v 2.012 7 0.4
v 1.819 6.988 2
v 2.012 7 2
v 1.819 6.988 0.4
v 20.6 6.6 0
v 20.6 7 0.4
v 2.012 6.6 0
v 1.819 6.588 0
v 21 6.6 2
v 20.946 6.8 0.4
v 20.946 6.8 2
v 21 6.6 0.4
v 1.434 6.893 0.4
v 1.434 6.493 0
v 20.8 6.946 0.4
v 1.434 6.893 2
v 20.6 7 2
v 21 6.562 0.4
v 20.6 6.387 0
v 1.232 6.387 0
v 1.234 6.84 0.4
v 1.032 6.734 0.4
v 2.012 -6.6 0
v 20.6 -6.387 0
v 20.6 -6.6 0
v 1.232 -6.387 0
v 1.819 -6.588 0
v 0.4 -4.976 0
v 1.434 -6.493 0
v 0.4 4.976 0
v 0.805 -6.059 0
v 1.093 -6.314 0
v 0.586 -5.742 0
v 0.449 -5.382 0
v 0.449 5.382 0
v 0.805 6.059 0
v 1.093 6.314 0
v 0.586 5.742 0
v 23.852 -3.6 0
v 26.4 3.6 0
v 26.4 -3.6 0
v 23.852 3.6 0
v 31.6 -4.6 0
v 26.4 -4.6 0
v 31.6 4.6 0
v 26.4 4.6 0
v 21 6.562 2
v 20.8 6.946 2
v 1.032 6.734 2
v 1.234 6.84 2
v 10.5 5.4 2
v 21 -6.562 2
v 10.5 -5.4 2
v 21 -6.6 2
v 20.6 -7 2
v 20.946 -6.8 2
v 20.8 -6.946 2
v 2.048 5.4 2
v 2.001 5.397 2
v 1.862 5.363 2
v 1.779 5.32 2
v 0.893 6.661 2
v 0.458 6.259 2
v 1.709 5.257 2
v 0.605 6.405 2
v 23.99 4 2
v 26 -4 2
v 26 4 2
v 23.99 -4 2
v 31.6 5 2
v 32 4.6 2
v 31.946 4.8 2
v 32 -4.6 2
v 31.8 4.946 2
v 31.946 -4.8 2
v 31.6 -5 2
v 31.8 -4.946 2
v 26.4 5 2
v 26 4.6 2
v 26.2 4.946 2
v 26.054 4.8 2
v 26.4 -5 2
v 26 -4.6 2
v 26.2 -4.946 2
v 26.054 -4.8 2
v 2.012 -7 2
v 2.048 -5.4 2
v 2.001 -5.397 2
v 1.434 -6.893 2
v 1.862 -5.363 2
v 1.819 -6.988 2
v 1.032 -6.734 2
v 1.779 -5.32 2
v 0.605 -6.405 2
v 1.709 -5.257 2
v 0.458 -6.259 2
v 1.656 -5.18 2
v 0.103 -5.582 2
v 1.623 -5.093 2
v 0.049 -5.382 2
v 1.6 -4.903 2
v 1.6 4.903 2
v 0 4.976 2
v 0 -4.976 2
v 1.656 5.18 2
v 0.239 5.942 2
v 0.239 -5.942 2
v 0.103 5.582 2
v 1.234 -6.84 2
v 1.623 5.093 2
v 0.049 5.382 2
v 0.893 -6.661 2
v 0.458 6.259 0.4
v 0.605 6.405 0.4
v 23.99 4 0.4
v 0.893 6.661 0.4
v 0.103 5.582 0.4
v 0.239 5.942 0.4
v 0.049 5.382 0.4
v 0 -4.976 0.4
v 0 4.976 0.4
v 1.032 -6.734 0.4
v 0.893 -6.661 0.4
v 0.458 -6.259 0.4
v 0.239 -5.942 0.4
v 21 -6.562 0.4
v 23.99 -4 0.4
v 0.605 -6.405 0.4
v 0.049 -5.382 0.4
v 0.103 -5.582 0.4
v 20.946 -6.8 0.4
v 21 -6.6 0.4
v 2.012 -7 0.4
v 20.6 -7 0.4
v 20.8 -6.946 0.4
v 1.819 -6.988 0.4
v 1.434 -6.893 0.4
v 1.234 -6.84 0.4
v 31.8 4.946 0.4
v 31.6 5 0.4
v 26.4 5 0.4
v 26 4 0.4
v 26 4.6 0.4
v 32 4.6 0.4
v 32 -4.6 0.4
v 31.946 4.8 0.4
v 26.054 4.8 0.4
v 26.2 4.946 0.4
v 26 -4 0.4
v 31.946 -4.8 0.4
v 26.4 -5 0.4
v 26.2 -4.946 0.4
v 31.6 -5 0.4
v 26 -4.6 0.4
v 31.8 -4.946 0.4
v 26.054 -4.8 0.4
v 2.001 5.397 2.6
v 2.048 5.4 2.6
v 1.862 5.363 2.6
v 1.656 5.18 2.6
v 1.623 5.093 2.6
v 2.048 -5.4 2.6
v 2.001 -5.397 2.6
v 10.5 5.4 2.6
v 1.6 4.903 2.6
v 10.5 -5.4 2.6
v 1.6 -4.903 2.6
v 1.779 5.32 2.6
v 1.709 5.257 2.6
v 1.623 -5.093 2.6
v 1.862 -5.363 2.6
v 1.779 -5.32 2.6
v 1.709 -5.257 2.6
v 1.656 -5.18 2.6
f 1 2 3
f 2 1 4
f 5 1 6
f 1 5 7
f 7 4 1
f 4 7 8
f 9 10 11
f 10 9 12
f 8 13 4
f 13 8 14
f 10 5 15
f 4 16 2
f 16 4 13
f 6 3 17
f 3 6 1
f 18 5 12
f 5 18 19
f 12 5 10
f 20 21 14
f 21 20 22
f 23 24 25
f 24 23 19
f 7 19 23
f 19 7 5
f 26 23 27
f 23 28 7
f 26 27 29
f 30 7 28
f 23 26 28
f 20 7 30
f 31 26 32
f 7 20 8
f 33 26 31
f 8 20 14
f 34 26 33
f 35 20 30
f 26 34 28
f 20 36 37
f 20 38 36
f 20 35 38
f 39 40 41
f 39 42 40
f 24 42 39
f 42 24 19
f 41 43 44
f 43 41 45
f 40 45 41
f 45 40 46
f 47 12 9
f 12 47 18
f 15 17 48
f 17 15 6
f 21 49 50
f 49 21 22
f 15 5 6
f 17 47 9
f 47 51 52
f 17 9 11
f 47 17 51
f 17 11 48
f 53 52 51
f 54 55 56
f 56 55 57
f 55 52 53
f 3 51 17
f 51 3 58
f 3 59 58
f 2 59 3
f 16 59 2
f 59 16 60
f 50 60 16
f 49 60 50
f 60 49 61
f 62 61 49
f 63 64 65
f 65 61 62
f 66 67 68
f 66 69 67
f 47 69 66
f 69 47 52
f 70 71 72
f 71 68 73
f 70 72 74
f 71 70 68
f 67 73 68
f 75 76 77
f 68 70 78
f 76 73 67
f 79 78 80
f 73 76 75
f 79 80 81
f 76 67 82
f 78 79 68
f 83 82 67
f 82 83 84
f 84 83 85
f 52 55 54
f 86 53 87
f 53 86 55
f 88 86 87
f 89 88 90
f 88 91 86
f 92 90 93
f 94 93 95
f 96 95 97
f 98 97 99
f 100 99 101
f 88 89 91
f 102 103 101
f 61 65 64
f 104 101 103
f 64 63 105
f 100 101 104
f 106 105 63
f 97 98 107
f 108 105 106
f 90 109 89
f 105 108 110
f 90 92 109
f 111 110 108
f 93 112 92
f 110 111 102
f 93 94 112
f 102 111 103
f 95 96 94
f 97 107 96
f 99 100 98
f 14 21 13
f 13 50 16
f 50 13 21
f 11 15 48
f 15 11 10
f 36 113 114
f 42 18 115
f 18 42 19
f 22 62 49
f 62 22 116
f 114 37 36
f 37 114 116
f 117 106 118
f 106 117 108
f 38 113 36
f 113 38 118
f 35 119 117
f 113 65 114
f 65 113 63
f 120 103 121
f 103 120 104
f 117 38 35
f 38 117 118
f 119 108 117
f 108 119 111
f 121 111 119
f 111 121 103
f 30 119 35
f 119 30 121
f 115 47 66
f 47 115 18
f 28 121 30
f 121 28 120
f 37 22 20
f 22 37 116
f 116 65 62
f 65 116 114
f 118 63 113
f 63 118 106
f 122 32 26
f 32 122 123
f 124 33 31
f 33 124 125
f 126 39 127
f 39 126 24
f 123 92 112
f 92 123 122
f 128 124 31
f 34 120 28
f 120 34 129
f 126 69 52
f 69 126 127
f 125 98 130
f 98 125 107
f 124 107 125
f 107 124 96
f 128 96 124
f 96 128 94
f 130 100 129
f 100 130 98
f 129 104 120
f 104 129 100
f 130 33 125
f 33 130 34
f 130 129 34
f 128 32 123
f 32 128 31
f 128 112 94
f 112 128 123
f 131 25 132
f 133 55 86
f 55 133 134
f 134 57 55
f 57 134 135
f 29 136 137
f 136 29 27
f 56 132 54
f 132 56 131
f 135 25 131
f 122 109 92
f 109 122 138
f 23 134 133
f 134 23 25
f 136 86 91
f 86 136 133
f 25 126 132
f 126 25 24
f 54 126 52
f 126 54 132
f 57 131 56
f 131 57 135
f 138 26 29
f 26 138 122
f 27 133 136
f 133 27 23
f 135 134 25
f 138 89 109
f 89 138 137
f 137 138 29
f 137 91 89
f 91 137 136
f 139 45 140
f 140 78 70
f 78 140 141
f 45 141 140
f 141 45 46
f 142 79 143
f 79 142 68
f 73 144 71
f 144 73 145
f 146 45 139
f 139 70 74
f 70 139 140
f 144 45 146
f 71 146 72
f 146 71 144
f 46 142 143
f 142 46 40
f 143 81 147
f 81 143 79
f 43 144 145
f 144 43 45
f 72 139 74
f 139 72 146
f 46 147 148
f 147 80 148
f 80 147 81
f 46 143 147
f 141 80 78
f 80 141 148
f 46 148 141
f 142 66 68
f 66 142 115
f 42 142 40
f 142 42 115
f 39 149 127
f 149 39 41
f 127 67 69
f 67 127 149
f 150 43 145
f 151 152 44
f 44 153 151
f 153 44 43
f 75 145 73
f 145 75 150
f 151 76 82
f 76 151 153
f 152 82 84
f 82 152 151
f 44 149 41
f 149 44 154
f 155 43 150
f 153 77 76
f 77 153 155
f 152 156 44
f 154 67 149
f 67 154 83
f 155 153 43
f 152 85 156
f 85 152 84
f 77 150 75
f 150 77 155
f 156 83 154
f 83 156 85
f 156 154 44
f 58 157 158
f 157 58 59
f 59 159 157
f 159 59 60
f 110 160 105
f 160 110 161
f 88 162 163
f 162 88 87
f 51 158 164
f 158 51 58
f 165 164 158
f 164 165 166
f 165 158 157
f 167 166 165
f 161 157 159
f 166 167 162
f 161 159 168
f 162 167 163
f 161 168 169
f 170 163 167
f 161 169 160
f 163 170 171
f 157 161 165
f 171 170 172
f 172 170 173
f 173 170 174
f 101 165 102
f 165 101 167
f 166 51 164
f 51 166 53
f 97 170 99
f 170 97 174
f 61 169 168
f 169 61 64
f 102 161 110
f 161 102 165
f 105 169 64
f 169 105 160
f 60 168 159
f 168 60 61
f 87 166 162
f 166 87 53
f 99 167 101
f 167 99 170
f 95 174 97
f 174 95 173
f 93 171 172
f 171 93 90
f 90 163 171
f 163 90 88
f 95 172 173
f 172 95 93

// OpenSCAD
// blood_culture_bottle.scad - blood culture bottle half filled with blood, token
// (design_brief.md 4.13). Flat 32 x 14 x 2.6 along x: Band 1 (0-2.0) is the bottle
// silhouette - body 14 x 21 with rounded bottom corners, 45 deg shoulder to an 8 mm neck,
// cap 10 x 6; Band 2 (2.0-2.6) is the blood filling the lower half of the body, 1.6 mm
// inside the edges. Two colours (clear, then red PETG), change at Z 2.0. Prints flat.
// Export: openscad -o blood_culture_bottle.stl blood_culture_bottle.scad
include <common.scad>

body        = [21, 14];         // along x, across
corner_r    = 2;                // bottom corners
neck_w      = 8;
neck_l      = 2;
cap         = [6, 10];
fill        = 0.5;              // share of the body length filled with blood
edge_offset = min_wall;         // 1.6: blood kept inside the silhouette

shoulder_l = (body[1] - neck_w) / 2;                 // 3, 45 deg
length     = body[0] + shoulder_l + neck_l + cap[0]; // 32

module body_2d() hull() {
    for (s = [-1, 1]) translate([corner_r, s * (body[1] / 2 - corner_r)]) circle(r = corner_r);
    translate([corner_r, -body[1] / 2]) square([body[0] - corner_r, body[1]]);
}

module bottle_2d() {
    body_2d();
    bx = body[0];
    polygon([[bx - 0.5, body[1] / 2], [bx + shoulder_l, neck_w / 2], [bx + shoulder_l, -neck_w / 2], [bx - 0.5, -body[1] / 2]]);
    translate([bx + shoulder_l - 0.5, -neck_w / 2]) square([neck_l + 1, neck_w]);
    translate([bx + shoulder_l + neck_l, -cap[1] / 2]) square(cap);
}

module blood_2d() intersection() {
    offset(delta = -edge_offset) body_2d();
    translate([-1, -body[1]]) square([1 + body[0] * fill, 2 * body[1]]);
}

module blood_culture_bottle() {
    band1() bottle_2d();
    band2() blood_2d();
}

blood_culture_bottle();
